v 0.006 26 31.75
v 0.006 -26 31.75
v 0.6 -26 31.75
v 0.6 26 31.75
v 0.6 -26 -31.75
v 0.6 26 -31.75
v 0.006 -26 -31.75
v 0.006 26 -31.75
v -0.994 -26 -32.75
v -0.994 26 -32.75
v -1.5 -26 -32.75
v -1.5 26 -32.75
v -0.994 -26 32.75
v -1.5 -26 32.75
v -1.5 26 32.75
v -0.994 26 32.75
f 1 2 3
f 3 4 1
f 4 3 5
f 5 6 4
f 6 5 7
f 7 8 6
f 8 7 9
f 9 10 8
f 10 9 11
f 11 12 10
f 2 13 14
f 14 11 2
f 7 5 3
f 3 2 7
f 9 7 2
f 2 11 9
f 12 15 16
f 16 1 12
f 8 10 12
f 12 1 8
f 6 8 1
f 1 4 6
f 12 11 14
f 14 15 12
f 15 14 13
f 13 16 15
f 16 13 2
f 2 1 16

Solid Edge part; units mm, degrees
sketch "Sketch1" plane through (0, 0, 0) normal (0, -1, 0) x (1, 0, 0)
  line L0 (0.6, 31.75) -> (0.6, -31.75)
  line L1 (0.0064, -31.75) -> (0.6, -31.75)
  line L2 (-0.9936, -32.75) -> (0.0064, -31.75)
  line L3 (-1.5, -32.75) -> (-0.9936, -32.75)
  line L4 (-1.5, -32.75) -> (-1.5, 32.75)
  line L5 (-1.5, 32.75) -> (-0.9936, 32.75)
  line L6 (-0.9936, 32.75) -> (0.0064, 31.75)
  line L7 (0.0064, 31.75) -> (0.6, 31.75)
  dimension "D1" = 65.5
  dimension "D2" = 63.5
  dimension "D3" = 1.5
  dimension "D4" = 2.1
  dimension "D5" = 63.5
  dimension "D6" = 0.25
  dimension "D7" = 0.25
extrude "Protrusion1" add sketch "Sketch1" along normal mid plane 52
